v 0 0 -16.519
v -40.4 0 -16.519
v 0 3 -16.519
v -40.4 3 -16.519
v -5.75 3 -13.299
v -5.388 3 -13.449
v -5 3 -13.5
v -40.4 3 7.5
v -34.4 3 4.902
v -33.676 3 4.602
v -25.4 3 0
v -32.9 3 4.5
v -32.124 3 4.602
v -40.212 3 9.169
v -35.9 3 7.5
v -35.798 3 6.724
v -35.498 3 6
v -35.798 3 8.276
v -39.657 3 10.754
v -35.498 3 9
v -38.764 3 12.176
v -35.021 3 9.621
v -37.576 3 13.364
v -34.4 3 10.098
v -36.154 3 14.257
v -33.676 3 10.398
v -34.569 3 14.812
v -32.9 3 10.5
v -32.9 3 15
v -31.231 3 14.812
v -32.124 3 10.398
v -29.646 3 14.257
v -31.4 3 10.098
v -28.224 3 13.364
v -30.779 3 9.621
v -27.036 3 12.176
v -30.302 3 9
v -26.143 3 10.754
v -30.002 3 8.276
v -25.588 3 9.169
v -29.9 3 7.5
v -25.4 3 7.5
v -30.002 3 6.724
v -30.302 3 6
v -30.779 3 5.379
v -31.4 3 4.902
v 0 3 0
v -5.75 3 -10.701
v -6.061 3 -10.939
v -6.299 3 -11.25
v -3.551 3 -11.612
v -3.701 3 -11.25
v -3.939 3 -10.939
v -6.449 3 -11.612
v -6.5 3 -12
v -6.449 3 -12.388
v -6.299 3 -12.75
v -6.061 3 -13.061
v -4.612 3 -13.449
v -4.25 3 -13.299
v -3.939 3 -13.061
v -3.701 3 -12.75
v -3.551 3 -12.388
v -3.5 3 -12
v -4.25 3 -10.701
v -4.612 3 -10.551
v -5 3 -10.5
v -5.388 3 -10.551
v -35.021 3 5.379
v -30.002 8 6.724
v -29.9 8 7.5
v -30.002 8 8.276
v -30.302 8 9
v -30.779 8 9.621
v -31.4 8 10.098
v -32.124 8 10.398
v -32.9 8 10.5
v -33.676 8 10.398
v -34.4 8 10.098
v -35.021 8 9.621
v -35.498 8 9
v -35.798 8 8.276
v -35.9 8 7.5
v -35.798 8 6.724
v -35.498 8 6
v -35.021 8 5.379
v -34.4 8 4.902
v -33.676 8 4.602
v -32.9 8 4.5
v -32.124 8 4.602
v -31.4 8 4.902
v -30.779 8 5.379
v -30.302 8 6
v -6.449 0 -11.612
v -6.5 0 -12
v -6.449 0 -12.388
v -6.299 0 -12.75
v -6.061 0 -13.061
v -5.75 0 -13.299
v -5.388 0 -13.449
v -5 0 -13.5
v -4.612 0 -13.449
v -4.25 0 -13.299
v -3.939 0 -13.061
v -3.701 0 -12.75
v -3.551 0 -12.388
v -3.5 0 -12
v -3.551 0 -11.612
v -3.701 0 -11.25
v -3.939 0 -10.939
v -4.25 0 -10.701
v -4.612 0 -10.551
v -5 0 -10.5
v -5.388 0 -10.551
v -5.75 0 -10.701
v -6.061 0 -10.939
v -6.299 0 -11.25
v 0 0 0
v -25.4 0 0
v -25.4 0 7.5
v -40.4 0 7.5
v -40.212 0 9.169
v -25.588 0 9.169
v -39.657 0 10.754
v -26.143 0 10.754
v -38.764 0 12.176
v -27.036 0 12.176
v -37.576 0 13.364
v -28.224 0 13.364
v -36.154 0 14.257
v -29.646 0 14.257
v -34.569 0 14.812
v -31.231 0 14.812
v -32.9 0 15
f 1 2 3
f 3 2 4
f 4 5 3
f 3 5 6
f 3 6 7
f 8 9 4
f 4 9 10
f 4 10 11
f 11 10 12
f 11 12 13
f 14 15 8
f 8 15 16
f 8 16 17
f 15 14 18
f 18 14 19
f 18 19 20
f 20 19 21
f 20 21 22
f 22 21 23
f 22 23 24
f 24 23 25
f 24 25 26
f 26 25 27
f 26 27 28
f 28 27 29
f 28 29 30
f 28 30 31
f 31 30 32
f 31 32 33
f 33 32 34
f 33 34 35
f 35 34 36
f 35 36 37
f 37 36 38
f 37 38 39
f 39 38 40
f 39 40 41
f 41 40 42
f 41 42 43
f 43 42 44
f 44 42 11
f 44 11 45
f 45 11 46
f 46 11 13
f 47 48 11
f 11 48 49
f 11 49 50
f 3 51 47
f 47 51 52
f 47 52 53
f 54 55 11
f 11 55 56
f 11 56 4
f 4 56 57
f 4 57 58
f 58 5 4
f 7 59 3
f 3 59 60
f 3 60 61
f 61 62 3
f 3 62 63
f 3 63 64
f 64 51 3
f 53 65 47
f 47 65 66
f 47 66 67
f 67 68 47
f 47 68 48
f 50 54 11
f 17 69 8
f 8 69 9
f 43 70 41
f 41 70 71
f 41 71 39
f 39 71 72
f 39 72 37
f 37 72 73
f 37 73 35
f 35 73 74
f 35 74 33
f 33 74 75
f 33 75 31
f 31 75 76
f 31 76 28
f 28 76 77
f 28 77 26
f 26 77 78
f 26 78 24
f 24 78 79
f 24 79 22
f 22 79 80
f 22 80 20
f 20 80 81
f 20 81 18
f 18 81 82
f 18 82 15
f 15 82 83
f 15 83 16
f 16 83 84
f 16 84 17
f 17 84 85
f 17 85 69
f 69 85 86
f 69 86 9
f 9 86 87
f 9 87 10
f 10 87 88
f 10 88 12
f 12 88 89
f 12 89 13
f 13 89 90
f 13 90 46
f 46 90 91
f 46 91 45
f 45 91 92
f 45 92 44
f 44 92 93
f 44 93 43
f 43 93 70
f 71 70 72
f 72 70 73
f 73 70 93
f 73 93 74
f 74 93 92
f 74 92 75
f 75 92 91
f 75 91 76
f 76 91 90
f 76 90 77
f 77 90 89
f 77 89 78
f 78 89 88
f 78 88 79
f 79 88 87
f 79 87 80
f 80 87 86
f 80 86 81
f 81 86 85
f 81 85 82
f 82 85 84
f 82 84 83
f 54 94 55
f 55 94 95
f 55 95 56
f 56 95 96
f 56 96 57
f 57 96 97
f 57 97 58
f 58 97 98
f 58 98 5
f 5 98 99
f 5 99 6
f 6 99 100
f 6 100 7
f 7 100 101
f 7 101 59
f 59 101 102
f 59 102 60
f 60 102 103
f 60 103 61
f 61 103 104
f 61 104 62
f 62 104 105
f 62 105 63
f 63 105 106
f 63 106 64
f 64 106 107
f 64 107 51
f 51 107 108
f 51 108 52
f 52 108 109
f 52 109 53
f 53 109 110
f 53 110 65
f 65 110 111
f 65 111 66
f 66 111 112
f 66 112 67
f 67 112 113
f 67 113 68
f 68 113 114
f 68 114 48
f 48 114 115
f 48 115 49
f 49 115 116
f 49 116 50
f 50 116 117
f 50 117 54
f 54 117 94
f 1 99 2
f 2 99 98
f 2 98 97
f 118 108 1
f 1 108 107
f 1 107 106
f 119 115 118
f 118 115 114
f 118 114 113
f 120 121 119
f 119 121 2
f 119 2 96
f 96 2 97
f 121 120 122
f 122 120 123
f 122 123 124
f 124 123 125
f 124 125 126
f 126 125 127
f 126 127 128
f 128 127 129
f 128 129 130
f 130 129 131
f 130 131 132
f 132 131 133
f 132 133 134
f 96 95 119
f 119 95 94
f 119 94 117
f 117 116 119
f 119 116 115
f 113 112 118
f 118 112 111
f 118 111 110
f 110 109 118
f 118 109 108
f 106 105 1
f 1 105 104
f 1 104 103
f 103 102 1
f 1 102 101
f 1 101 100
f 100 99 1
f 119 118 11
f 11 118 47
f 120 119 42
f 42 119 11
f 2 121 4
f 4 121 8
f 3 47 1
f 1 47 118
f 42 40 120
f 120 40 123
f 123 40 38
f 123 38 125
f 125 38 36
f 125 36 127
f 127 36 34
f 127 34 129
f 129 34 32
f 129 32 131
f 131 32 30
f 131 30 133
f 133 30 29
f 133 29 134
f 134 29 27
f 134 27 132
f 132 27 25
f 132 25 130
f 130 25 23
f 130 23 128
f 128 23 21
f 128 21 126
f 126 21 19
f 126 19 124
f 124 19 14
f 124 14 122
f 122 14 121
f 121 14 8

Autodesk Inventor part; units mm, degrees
ref_plane "YZ Plane" through (0, 0, 0) normal (1, 0, 0) x (0, 1, 0)
ref_plane "XZ Plane" through (0, 0, 0) normal (0, 1, 0) x (-1, 0, 0)
ref_plane "XY Plane" through (0, 0, 0) normal (0, 0, 1) x (1, 0, 0)
sketch "Sketch3" plane through (0, 0, 0) normal (0, 1, 0) x (-1, 0, 0)
  line L0 (0, 0) -> (0, -60)
  line L1 (0, 0) -> (60, 0) construction
  line L2 (0, -60) -> (12.519, -60)
  line L3 (0, 0) -> (25.4, 0)
  line L4 (25.4, 0) -> (25.4, 7.5)
  line L5 (25.4, 7.5) -> (40.4, 7.5)
  circle A0 centre (32.9, 7.5) radius 7.5
  circle A1 centre (32.9, 7.5) radius 3
  line L6 (40.4, 7.5) -> (40.4, -16.519)
  line L7 (40.4, -16.519) -> (12.519, -60)
  line L8 (0, -30) -> (5, -30)
  line L9 (5, -60) -> (5, -48)
  line L10 (5, 0) -> (5, -12)
  circle A2 centre (5, -12) radius 1.5
  circle A3 centre (5, -48) radius 1.5
  dimension "d6" = 60
  dimension "d7" = 90
  dimension "d8" = 12.519
  dimension "d9" = 25.4
  dimension "d10" = 7.5
  dimension "d11" = 15
  dimension "d12" = 6
  dimension "d13" = 24.019
  dimension "d18" = 5
  dimension "d19" = 12
  dimension "d20" = 12
  dimension "d21" = 3
  dimension "d22" = 3
extrude "Extrusion1" add sketch "Sketch3" along normal blind 3 contours L3 L4 A0 L6 L7 L2 L0 | A0 L5 A1 | L5 A1 A0 | L5 A1 picked at (33.8145, 6.796)
sketch "Sketch4" plane through (0, 0, 0) normal (0, -1, 0) x (1, 0, 0)
  line L0 (-35.9, 7.5) -> (-29.9, 7.5) projected
  line L1 (-29.9, 7.5) -> (-35.9, 7.5) projected
  circle A0 centre (-32.9, 7.5) radius 3
  point P0 (0, 0)
extrude "Extrusion2" add sketch "Sketch4" against normal blind 8
sketch "Sketch5" plane through (0, 3, 0) normal (0, 1, 0) x (1, 0, 0)
  line L0 (-40.4, 16.519) -> (-40.4, -7.5) projected
  line L1 (0, 60) -> (-12.519, 60) projected
  line L2 (-40.4, 60) -> (0, 60)
  line L3 (0, 60) -> (0, 16.519)
  line L4 (0, 16.519) -> (-40.4, 16.519)
  line L5 (-40.4, 16.519) -> (-40.4, 60)
  point P0 (0, 0)
extrude "Extrusion3" cut sketch "Sketch5" against normal blind 25.4
properties part number "exShortShaft"
